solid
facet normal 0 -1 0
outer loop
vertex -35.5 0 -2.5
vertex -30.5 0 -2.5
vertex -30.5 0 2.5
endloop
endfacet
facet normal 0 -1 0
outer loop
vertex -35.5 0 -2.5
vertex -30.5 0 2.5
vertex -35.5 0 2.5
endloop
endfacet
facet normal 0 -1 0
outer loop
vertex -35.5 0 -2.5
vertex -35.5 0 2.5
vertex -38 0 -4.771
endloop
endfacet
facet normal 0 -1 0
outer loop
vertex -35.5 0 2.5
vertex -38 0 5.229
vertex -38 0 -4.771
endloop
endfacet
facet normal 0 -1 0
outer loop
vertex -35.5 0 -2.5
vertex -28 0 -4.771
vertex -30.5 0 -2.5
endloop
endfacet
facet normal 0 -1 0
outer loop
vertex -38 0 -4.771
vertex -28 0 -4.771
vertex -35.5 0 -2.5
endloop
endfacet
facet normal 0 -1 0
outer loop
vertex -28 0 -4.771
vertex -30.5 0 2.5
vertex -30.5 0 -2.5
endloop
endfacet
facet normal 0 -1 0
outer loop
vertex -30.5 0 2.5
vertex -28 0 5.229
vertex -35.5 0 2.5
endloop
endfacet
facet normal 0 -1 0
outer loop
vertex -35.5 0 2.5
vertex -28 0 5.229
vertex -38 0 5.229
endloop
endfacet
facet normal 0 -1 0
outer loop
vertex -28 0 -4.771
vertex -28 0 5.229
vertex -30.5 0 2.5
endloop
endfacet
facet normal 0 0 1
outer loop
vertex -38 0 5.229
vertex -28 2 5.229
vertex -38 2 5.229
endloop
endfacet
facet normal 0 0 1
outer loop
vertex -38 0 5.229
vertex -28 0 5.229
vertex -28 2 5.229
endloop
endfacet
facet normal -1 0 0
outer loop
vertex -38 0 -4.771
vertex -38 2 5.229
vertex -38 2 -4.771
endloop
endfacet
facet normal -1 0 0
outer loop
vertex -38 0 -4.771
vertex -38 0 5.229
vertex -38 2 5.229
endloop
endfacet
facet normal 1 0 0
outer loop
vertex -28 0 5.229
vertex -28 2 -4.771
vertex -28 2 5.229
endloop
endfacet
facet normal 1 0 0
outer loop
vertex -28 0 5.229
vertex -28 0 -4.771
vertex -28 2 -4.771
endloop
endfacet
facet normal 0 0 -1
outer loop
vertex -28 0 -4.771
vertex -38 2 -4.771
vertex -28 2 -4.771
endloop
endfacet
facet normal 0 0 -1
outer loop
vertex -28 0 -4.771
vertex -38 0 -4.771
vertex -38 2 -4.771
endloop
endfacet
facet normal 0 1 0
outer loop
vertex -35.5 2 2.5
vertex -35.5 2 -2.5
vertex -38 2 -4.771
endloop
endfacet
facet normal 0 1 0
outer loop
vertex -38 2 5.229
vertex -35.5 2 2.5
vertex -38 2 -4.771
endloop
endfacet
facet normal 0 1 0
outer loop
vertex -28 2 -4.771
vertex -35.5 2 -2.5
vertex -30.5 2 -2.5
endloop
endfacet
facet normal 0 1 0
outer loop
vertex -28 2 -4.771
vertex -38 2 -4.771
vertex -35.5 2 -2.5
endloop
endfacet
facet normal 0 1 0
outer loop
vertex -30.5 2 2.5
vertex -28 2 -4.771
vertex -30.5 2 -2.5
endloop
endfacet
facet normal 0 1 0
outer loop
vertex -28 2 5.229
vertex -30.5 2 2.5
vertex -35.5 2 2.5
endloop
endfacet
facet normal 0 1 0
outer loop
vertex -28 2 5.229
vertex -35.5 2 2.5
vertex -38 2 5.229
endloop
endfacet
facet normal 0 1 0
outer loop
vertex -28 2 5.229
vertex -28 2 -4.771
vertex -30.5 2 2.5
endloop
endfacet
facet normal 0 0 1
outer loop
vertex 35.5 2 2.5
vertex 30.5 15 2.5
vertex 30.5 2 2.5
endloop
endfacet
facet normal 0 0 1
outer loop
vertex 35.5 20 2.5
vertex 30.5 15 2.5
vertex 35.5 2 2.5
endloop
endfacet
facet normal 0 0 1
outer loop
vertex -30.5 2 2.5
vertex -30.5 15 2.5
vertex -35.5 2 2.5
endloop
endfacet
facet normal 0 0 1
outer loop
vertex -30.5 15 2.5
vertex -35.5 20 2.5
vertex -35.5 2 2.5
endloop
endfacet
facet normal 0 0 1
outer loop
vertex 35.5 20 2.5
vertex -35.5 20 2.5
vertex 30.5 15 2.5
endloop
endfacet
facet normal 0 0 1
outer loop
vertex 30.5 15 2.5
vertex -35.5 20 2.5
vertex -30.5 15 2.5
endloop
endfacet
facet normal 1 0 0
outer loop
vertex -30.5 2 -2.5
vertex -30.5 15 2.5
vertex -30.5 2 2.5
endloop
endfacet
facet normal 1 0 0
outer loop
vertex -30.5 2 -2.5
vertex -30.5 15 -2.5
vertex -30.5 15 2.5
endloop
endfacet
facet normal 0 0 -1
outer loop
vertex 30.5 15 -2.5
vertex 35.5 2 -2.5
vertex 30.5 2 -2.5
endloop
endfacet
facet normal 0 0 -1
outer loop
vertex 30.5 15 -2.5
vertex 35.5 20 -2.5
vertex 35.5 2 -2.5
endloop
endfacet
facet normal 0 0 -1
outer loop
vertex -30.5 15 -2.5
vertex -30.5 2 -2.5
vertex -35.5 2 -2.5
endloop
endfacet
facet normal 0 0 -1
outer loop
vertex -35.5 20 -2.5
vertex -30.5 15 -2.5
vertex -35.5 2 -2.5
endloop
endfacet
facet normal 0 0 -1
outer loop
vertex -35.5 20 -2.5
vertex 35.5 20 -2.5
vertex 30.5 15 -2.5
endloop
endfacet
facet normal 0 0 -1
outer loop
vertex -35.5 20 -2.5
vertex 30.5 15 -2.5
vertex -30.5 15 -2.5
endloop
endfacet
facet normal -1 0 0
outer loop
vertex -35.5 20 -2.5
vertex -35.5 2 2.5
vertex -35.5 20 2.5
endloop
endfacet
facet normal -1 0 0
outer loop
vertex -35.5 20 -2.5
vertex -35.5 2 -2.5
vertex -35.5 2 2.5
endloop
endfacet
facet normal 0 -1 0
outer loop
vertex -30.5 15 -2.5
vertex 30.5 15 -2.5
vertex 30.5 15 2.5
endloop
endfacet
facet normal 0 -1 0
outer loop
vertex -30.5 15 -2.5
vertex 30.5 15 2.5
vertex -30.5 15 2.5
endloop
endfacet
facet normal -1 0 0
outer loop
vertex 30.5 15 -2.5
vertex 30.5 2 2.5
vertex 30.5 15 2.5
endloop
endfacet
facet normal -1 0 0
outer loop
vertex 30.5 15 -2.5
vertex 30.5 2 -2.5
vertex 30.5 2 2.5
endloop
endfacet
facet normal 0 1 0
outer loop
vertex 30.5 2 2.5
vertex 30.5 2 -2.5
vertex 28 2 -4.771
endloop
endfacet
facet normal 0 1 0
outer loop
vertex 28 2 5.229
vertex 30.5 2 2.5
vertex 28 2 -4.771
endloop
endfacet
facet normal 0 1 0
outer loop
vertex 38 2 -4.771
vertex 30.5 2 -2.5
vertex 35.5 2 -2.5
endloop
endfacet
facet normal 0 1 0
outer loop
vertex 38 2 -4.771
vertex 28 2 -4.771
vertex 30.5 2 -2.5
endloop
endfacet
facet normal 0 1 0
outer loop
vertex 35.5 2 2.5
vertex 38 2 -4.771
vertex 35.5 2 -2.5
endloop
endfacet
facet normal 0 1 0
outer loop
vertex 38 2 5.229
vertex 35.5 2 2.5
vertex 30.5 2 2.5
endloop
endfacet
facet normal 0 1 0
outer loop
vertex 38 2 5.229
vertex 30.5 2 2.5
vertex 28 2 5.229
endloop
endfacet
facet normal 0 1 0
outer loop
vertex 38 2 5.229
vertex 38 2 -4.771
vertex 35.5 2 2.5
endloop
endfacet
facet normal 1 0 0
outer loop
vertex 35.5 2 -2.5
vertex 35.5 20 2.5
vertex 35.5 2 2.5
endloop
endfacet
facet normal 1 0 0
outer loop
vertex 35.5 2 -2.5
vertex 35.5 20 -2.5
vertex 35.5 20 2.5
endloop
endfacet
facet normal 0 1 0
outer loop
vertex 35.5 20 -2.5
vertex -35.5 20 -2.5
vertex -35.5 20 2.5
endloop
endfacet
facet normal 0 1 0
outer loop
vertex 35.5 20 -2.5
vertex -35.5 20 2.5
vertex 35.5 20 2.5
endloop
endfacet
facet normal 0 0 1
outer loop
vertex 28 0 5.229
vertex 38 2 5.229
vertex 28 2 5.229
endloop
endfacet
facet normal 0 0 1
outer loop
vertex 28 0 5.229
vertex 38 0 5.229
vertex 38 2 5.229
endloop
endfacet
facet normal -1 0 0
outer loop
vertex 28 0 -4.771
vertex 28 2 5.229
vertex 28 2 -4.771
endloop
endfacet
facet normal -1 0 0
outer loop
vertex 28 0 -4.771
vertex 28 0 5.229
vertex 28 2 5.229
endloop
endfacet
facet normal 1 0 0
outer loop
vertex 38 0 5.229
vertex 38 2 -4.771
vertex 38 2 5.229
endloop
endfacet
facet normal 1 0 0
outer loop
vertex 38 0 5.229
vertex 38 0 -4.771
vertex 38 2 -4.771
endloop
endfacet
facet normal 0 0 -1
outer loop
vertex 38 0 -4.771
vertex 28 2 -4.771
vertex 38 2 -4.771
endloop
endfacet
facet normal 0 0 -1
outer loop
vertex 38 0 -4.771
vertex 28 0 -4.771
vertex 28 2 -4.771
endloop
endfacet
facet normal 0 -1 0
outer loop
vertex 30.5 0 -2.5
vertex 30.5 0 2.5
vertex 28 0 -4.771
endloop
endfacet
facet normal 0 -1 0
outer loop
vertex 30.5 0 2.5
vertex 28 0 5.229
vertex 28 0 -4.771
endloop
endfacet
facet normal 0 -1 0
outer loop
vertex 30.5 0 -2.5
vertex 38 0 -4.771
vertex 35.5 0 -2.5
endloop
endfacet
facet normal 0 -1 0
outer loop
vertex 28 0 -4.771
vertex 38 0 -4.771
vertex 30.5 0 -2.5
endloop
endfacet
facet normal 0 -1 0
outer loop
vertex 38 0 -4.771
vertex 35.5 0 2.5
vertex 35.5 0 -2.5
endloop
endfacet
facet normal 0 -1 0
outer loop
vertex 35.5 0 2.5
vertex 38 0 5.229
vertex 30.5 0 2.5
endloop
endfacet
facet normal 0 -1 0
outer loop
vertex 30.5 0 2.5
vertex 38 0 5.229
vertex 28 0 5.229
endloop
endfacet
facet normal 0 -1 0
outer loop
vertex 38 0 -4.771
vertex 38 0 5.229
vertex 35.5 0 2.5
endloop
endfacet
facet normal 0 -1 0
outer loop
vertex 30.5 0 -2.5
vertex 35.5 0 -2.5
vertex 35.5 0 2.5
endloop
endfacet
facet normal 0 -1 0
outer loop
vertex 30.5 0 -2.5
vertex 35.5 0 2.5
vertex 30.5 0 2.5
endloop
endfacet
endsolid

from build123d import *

# Parameters (mm, degrees)
PAD_DEPTH           = 2.5
SKETCH002_W         = 10
SKETCH002_H         = 10
PAD001_DEPTH        = 2
LINEARPATTERN_COUNT = 2
LINEARPATTERN_PITCH = 66


with BuildPart() as part:
    # Sketch001 → Pad (new body, symmetric)
    with BuildSketch(Plane.XY):
        Polygon((-35.5, 0), (-35.5, 20), (35.5, 20), (35.5, 0), (30.5, 0), (30.5, 15), (-30.5, 15), (-30.5, 0), align=None)
    extrude(amount=PAD_DEPTH, both=True)

    # Sketch002 (on Face4 of Pad) → Pad001 (join)
    with BuildSketch(Plane.XZ):
        with Locations((33, 0.228973)):
            Rectangle(SKETCH002_W, SKETCH002_H)
    pad001 = extrude(amount=-PAD001_DEPTH)

    # LinearPattern: Pad001 ×2
    with Locations(*[(-i * LINEARPATTERN_PITCH, 0, 0) for i in range(1, LINEARPATTERN_COUNT)]):
        add(pad001)


solid = part.part
